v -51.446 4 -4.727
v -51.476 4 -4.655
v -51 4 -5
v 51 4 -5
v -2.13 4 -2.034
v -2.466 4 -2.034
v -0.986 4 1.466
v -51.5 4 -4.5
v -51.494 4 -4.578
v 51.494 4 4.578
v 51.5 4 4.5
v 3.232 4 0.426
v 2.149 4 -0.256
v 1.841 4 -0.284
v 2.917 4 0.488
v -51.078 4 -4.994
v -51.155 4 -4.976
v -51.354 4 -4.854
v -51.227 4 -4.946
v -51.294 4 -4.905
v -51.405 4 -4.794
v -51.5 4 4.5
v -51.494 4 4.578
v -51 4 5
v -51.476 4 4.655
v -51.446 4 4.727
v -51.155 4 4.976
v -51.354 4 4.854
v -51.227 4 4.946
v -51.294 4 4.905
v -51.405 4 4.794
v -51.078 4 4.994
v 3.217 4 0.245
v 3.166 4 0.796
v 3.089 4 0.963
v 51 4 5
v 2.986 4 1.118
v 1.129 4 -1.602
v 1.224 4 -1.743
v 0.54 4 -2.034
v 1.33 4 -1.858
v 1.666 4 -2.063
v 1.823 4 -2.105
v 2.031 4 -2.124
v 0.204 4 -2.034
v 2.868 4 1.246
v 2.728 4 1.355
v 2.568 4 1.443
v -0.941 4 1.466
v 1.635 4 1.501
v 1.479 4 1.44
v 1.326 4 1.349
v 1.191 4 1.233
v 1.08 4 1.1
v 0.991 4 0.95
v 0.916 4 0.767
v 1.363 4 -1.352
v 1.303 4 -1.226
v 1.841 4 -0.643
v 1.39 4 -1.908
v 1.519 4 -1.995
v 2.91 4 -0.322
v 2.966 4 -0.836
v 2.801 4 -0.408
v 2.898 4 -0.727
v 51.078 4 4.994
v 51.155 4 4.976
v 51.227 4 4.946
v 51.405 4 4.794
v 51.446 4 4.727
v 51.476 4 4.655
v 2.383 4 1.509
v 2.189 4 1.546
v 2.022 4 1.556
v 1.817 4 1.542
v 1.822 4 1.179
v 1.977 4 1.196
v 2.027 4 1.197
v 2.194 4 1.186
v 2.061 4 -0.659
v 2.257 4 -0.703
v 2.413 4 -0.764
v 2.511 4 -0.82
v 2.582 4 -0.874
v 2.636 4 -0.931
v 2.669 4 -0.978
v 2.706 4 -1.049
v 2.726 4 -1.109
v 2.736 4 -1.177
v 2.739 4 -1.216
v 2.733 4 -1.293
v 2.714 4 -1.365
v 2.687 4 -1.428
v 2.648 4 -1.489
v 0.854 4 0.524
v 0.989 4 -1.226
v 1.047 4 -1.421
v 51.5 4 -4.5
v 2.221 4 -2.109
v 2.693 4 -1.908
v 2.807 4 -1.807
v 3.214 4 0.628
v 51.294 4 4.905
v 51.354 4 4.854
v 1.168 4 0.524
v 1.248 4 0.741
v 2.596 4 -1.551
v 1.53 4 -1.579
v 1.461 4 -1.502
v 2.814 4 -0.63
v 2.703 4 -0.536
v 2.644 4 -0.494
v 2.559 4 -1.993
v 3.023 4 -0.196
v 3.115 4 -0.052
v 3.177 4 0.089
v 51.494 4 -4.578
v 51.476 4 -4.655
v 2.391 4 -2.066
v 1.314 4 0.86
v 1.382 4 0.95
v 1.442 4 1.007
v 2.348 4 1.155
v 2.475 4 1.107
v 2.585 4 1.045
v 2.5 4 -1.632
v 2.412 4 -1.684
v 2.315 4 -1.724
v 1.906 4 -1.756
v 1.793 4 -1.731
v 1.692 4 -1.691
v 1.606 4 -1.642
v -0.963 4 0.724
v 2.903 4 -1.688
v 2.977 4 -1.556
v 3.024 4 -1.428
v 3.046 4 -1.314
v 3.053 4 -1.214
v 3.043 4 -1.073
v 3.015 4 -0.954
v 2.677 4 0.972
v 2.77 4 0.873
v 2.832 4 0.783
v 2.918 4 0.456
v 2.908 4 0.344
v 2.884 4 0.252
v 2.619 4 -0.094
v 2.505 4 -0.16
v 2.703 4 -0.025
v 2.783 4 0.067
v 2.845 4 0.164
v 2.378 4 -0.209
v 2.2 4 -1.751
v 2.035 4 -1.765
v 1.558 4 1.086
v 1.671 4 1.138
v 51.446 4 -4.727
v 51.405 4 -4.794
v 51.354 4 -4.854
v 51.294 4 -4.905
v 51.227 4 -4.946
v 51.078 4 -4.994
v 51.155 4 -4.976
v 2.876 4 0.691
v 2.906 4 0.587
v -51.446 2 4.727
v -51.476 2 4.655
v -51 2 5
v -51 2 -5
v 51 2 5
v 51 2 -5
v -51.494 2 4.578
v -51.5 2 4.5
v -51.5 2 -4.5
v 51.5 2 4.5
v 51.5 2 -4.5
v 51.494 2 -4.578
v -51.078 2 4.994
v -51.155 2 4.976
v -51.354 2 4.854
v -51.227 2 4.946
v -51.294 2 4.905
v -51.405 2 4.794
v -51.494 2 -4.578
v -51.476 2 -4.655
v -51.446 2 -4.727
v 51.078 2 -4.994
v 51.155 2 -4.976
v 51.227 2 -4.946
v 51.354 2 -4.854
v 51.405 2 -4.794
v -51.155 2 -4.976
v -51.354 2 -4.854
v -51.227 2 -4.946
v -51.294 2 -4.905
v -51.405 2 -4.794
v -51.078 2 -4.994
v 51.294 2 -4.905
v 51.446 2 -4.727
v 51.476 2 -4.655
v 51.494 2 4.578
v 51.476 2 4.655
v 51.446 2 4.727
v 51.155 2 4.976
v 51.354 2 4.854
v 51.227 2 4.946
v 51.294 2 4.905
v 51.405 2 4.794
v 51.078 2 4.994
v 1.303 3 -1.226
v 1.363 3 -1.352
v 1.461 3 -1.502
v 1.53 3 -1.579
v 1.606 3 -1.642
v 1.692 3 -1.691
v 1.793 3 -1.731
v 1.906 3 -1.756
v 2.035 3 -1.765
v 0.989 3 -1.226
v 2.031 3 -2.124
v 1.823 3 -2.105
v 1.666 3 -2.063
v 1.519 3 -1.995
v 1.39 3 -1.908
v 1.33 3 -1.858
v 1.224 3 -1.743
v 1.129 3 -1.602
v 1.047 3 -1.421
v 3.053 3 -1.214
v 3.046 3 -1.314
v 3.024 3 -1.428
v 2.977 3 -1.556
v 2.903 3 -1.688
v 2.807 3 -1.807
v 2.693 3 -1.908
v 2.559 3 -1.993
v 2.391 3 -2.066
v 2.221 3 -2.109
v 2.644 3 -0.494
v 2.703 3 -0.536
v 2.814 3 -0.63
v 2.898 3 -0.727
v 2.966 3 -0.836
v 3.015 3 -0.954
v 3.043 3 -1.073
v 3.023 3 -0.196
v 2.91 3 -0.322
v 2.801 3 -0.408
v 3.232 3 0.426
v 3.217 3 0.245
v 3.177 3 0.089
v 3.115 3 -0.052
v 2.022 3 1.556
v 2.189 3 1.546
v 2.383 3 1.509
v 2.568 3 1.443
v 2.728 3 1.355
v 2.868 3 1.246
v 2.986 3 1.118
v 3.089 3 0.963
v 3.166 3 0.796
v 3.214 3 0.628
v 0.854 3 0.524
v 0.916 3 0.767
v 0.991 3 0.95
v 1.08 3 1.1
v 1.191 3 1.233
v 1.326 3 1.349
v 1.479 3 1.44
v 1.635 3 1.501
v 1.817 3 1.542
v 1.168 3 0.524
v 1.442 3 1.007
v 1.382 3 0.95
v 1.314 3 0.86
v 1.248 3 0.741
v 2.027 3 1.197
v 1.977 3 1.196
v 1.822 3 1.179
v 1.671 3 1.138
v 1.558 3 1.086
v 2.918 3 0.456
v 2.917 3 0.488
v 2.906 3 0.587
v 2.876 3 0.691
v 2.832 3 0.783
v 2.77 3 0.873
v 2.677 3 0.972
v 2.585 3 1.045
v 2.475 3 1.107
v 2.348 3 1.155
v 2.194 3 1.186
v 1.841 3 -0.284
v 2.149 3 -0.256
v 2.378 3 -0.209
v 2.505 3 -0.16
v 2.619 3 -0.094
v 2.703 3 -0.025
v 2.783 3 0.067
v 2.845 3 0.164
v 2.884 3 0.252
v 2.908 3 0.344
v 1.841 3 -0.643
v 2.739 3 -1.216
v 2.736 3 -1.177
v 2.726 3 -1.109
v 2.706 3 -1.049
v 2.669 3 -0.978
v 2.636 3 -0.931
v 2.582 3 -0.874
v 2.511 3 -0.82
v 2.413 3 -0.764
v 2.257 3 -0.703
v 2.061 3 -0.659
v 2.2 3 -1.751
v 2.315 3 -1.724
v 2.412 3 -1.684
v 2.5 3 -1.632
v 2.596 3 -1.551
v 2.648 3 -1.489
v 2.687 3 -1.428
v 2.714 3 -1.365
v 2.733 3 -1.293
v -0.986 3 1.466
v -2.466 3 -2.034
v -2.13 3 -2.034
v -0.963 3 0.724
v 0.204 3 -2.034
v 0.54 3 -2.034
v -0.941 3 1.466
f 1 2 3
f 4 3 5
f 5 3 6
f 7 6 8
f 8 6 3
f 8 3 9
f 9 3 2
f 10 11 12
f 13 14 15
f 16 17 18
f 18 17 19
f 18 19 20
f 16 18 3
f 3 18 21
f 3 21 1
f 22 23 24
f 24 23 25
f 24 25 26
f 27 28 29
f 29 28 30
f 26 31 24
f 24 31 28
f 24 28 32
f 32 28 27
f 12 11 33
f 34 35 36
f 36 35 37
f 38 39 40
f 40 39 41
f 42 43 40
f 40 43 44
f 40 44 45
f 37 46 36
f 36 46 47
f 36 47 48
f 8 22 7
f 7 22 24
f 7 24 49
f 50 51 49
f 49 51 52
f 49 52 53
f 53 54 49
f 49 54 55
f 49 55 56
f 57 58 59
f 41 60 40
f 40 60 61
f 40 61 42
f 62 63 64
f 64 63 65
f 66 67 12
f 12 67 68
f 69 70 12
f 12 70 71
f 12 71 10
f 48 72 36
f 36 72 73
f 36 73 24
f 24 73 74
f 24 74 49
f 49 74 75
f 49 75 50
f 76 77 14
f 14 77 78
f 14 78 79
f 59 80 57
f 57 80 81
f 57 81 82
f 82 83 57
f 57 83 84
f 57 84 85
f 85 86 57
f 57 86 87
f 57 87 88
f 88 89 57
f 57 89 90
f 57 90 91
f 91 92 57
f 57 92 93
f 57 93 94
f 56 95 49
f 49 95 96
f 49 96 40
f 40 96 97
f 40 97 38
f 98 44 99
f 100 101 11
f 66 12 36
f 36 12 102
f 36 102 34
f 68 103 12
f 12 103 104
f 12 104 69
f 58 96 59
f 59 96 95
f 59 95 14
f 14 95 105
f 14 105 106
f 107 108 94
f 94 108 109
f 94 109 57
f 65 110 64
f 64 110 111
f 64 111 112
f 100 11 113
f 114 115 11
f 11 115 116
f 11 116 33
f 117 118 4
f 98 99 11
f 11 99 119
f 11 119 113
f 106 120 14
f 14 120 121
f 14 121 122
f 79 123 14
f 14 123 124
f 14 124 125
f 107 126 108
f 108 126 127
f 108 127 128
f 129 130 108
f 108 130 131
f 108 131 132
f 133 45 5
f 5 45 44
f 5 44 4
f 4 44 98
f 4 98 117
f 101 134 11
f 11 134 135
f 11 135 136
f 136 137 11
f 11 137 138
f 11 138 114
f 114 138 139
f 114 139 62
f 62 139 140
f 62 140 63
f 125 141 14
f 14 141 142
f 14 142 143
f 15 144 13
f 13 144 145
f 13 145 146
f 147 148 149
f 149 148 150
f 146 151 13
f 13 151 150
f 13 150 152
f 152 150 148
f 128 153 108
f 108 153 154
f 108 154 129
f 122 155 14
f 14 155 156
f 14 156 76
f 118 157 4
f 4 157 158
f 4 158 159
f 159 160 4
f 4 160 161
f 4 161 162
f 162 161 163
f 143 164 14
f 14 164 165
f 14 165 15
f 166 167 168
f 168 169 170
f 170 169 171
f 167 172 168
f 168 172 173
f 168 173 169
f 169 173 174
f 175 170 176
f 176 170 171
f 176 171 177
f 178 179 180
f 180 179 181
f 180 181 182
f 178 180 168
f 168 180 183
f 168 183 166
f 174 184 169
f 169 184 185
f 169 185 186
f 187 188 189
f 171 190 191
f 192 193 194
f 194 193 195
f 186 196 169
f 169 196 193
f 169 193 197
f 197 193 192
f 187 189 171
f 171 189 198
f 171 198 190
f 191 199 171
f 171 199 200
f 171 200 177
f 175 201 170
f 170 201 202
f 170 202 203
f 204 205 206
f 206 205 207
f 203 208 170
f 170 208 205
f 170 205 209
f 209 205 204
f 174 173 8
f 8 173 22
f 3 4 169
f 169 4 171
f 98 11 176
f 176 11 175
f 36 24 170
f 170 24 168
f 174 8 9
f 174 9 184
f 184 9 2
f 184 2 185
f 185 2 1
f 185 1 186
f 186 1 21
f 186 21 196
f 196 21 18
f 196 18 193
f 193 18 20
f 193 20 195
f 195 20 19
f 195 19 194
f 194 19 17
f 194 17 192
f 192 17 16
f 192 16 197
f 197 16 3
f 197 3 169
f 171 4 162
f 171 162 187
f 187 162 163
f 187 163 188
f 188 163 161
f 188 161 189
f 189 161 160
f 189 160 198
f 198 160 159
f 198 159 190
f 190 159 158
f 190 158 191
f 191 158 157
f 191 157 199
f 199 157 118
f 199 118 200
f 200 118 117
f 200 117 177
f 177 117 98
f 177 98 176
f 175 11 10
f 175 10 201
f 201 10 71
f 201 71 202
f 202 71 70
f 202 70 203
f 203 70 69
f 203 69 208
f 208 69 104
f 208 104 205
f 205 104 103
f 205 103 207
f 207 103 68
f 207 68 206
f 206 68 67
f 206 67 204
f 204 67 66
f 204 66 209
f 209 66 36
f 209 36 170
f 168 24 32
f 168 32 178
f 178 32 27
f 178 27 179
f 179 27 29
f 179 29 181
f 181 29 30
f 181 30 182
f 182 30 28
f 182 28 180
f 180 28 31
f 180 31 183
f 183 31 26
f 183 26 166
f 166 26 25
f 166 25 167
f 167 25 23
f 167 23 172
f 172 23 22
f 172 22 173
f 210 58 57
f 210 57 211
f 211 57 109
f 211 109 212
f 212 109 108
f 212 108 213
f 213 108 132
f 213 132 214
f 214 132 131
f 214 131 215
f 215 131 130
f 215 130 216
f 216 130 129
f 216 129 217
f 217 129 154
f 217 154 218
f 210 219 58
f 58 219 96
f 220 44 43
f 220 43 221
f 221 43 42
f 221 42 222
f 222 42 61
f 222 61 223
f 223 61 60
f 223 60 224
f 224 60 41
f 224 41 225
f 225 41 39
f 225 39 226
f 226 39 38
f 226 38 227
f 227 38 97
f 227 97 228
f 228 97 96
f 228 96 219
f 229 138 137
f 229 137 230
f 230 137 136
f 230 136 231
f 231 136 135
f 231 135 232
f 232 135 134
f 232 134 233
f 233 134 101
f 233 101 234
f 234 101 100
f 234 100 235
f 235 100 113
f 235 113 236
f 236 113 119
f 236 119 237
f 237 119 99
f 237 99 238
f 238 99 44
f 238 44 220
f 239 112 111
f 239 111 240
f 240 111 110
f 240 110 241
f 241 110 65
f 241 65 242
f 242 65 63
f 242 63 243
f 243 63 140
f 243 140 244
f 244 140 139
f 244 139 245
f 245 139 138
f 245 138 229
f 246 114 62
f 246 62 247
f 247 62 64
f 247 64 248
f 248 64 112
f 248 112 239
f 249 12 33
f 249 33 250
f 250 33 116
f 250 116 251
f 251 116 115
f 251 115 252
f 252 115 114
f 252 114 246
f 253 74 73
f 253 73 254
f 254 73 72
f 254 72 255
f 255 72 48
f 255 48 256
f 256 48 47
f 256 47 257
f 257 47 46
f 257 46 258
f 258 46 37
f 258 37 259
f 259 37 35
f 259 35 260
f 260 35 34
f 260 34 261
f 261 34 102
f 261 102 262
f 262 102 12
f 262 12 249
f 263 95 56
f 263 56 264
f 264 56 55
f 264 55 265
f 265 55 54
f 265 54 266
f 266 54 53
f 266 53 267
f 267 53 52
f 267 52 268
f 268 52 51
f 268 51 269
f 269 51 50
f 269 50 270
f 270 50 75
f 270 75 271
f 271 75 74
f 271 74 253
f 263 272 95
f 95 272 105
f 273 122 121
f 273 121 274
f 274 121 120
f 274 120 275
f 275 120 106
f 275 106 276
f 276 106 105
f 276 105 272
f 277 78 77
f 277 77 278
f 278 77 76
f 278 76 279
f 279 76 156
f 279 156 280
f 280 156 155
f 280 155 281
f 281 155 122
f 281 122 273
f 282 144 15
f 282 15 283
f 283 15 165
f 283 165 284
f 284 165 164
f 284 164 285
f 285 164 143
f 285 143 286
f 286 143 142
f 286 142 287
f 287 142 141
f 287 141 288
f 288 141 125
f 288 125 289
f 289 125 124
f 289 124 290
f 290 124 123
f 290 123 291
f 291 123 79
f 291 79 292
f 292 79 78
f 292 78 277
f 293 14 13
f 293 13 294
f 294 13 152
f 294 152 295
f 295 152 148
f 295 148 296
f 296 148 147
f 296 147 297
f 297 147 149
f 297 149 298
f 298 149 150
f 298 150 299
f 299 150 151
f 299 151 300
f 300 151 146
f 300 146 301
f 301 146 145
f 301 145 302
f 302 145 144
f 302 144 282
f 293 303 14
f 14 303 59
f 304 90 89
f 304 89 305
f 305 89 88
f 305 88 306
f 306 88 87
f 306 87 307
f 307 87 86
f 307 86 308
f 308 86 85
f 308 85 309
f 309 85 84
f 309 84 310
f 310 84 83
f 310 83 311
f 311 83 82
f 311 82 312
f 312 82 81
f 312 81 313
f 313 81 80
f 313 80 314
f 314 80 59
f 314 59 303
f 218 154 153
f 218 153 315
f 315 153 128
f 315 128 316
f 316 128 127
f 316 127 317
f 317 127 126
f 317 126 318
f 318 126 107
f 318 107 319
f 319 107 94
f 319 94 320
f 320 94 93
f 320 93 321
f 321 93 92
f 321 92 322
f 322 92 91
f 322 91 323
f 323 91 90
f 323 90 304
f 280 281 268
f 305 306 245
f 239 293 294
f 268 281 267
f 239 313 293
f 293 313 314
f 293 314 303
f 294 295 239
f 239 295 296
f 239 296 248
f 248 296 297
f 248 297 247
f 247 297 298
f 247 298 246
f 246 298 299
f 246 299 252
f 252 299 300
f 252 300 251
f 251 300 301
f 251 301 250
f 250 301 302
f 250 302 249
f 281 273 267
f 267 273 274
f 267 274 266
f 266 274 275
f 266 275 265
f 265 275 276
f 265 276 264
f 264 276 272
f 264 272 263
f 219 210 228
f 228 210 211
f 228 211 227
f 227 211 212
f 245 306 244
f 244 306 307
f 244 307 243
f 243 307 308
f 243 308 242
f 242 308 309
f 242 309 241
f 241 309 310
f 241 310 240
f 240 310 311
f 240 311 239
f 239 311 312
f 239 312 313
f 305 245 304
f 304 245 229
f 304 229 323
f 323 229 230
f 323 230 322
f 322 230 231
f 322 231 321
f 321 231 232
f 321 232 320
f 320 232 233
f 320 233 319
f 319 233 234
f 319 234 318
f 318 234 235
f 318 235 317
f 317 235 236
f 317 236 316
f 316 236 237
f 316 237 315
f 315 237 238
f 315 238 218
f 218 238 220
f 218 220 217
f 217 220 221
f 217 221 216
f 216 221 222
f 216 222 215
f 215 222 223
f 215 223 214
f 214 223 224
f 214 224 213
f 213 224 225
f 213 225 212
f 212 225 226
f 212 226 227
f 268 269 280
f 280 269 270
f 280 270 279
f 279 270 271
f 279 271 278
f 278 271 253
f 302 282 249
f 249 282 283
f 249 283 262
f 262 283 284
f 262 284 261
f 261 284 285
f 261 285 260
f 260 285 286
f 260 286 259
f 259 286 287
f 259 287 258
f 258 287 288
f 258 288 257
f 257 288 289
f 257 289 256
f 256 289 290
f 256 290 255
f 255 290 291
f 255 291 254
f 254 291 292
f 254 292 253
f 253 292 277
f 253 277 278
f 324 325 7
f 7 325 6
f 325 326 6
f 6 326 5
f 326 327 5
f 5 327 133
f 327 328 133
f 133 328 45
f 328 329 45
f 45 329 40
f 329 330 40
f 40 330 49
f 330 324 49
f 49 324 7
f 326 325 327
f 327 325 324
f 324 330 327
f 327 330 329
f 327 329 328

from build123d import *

# Parameters (mm, degrees)
SKETCH1_W           = 99
SKETCH1_H           = 6
BOSS_EXTRUDE1_DEPTH = 2
SKETCH2_W           = 101
SKETCH2_H           = 8
BOSS_EXTRUDE3_DEPTH = 2
DRAFT1_ANGLE        = 10
SKETCH3_W           = 103
SKETCH3_H           = 10
BOSS_EXTRUDE4_DEPTH = 2
FILLET1_R           = 0.5
CUT_EXTRUDE1_DEPTH  = 1
CUT_EXTRUDE2_START  = 10
CUT_EXTRUDE2_DEPTH  = 10


with BuildPart() as part:
    # Sketch1 → Boss-Extrude1 (new body)
    with BuildSketch(Plane(origin=(0, 0, 0), x_dir=(1, 0, 0), z_dir=(0, 1, 0))):
        Rectangle(SKETCH1_W, SKETCH1_H)
    extrude(amount=BOSS_EXTRUDE1_DEPTH)

    # Draft1
    draft1_faces = [part.faces().sort_by_distance(p)[0] for p in [
        (49.5, 1, 0),
        (0, 1, 3),
        (-49.5, 1, 0),
        (0, 1, -3),
    ]]
    draft(draft1_faces, Plane(origin=(0, 0, 0), x_dir=(0, 0, -1), z_dir=(0, -1, 0)), DRAFT1_ANGLE)



with BuildPart() as body_2:
    # Sketch2 → Boss-Extrude3 (new body)
    with BuildSketch(Plane(origin=(0, 2, 0), x_dir=(1, 0, 0), z_dir=(0, 1, 0))):
        Rectangle(SKETCH2_W, SKETCH2_H)
    extrude(amount=BOSS_EXTRUDE3_DEPTH)


with BuildPart() as part_1:
    add(part.part)

    add(body_2.part)  # Boss-Extrude4 merges body 2
    # Sketch3 → Boss-Extrude4 (add)
    with BuildSketch(Plane(origin=(0, 4, 0), x_dir=(1, 0, 0), z_dir=(0, 1, 0))):
        Rectangle(SKETCH3_W, SKETCH3_H)
    extrude(amount=-BOSS_EXTRUDE4_DEPTH)

    # Fillet1
    fillet1_edges = [part_1.edges().sort_by_distance(p)[0] for p in [
        (-51.5, 3, 5),
        (-51.5, 3, -5),
        (51.5, 3, -5),
        (51.5, 3, 5),
    ]]
    fillet(fillet1_edges, radius=FILLET1_R)

    # Sketch4 → Cut-Extrude1 (cut)
    with BuildSketch(Plane(origin=(0, 4, 0), x_dir=(1, 0, 0), z_dir=(0, 1, 0))):
        Polygon((-2.466339169, 2.034069186), (-2.129800707, 2.034069186), (-0.96313404, -0.724143955), (0.203532626, 2.034069186), (0.540071088, 2.034069186), (-0.940698143, -1.465930814), (-0.985569938, -1.465930814), align=None)
        with BuildLine():
            Line((1.302891601, 1.226376878), (0.988789037, 1.226376878))
            add(Edge.make_bspline(
                [(0.988789037, 1.226376878), (0.997298587, 1.261609362), (1.013934063, 1.330485986), (1.048631636, 1.428893247), (1.086430891, 1.522016768), (1.131819996, 1.608112842), (1.18132875, 1.688911745), (1.238051472, 1.762580869), (1.299371194, 1.830993835), (1.367196144, 1.891707072), (1.438324805, 1.946684802), (1.513759425, 1.993559859), (1.591982319, 2.033884012), (1.673535452, 2.067104244), (1.758661623, 2.092129767), (1.846591247, 2.110286573), (1.937554747, 2.122077687), (1.999302337, 2.12322845), (2.030656024, 2.123812775)],
                knots=[0, 0, 0, 0, 1.162005537, 2.271625781, 3.343758855, 4.383309926, 5.390229558, 6.379919256, 7.361854164, 8.333198761, 9.295911338, 10.242430842, 11.177959212, 12.116337295, 13.062827104, 14.020064771, 14.994644689, 16, 16, 16, 16], degree=3))
            add(Edge.make_bspline(
                [(2.030656024, 2.123812775), (2.076338766, 2.122433545), (2.166707777, 2.11970517), (2.299470824, 2.094790733), (2.427497643, 2.055365601), (2.549386891, 2.000891874), (2.662605323, 1.93370456), (2.76334151, 1.853739824), (2.850230021, 1.762540522), (2.923124398, 1.661807958), (2.980199397, 1.554152448), (3.022285771, 1.443352291), (3.047907452, 1.32967032), (3.051228009, 1.252913041), (3.052891601, 1.214457807)],
                knots=[0, 0, 0, 0, 1.083050992, 2.142477498, 3.193116406, 4.255571735, 5.30263384, 6.308962982, 7.297363603, 8.282367274, 9.249857812, 10.179914175, 11.08814088, 12, 12, 12, 12], degree=3))
            add(Edge.make_bspline(
                [(3.052891601, 1.214457807), (3.05172801, 1.177451013), (3.049451043, 1.105034458), (3.030117337, 0.999312961), (2.997581074, 0.899671361), (2.952511311, 0.805690199), (2.894169761, 0.717965359), (2.823497064, 0.636299468), (2.739994403, 0.56033031), (2.676715465, 0.516810837), (2.644137594, 0.494405724)],
                knots=[0, 0, 0, 0, 1.024540389, 2.004866551, 2.965041327, 3.920577974, 4.882998113, 5.874504559, 6.905732034, 8, 8, 8, 8], degree=3))
            add(Edge.make_bspline(
                [(2.644137594, 0.494405724), (2.681369349, 0.476427552), (2.755136223, 0.440807595), (2.855686753, 0.370951837), (2.946964628, 0.29029549), (2.997868347, 0.227352837), (3.023444485, 0.195727839)],
                knots=[0, 0, 0, 0, 1.015518401, 2.012035669, 3.001164323, 4, 4, 4, 4], degree=3))
            add(Edge.make_bspline(
                [(3.023444485, 0.195727839), (3.040285828, 0.172670088), (3.073692724, 0.126932171), (3.114928257, 0.053395745), (3.152337372, -0.020955744), (3.181487591, -0.09811515), (3.204061458, -0.177188164), (3.22019749, -0.25831056), (3.230221631, -0.341548582), (3.231657183, -0.397861062), (3.23237878, -0.426167193)],
                knots=[0, 0, 0, 0, 1.025084078, 2.033381695, 3.024893161, 4.013698104, 4.991890475, 5.976764909, 6.982997093, 8, 8, 8, 8], degree=3))
            add(Edge.make_bspline(
                [(3.23237878, -0.426167193), (3.230584267, -0.475176914), (3.227003685, -0.572965716), (3.19499961, -0.717440437), (3.14538637, -0.85866594), (3.074929434, -0.993740779), (2.989061925, -1.12012116), (2.886904601, -1.233197469), (2.769618192, -1.330396073), (2.638812543, -1.411606301), (2.497095415, -1.476524223), (2.345519823, -1.521581666), (2.186269769, -1.550927666), (2.077062471, -1.554074535), (2.02154144, -1.555674404)],
                knots=[0, 0, 0, 0, 0.955779014, 1.907060117, 2.875433937, 3.871313158, 4.872415639, 5.851225146, 6.836215519, 7.83643374, 8.849228613, 9.86973379, 10.916971861, 12, 12, 12, 12], degree=3))
            add(Edge.make_bspline(
                [(2.02154144, -1.555674404), (1.98412214, -1.554806191), (1.910493435, -1.553097837), (1.802249937, -1.541419236), (1.698928237, -1.52008923), (1.600388639, -1.491385925), (1.506543603, -1.454994183), (1.417679498, -1.409675485), (1.333249604, -1.356363983), (1.254050653, -1.294430395), (1.180092086, -1.225149055), (1.113339361, -1.147290045), (1.052679568, -1.062292641), (0.99973693, -0.969169585), (0.952099977, -0.869124328), (0.91291902, -0.76087583), (0.878433452, -0.645391808), (0.862399987, -0.564914067), (0.854173652, -0.523623122)],
                knots=[0, 0, 0, 0, 1.048658725, 2.063410685, 3.046034179, 4.001477787, 4.936774919, 5.862367409, 6.792675028, 7.730719943, 8.675894397, 9.627829632, 10.600096036, 11.597688215, 12.626045268, 13.701542398, 14.82072376, 16, 16, 16, 16], degree=3))
            Line((0.854173652, -0.523623122), (1.168276216, -0.523623122))
            add(Edge.make_bspline(
                [(1.168276216, -0.523623122), (1.176459507, -0.550572135), (1.19237672, -0.602990307), (1.219471018, -0.678430613), (1.25033929, -0.747588666), (1.283453849, -0.810971788), (1.318232295, -0.86920419), (1.35714722, -0.920746059), (1.397316365, -0.967861262), (1.427595719, -0.994405874), (1.442414838, -1.007397161)],
                knots=[0, 0, 0, 0, 1.198163088, 2.33053128, 3.407730985, 4.417276592, 5.372219308, 6.28897303, 7.162600585, 8, 8, 8, 8], degree=3))
            add(Edge.make_bspline(
                [(1.442414838, -1.007397161), (1.462011414, -1.022505495), (1.501144077, -1.052675526), (1.564912308, -1.091177155), (1.631977194, -1.12453818), (1.703791869, -1.150021876), (1.778806639, -1.171599537), (1.858234004, -1.185720056), (1.941373221, -1.195408227), (1.998140985, -1.196263159), (2.027150415, -1.196700045)],
                knots=[0, 0, 0, 0, 0.946170439, 1.889420265, 2.845303464, 3.807233317, 4.801018734, 5.828864929, 6.890507805, 8, 8, 8, 8], degree=3))
            add(Edge.make_bspline(
                [(2.027150415, -1.196700045), (2.059903917, -1.19608414), (2.123950564, -1.19487979), (2.217405424, -1.183804084), (2.306312871, -1.16767367), (2.389685797, -1.142760687), (2.468616304, -1.111979836), (2.541997954, -1.07333143), (2.61079406, -1.027986709), (2.674123466, -0.97644755), (2.731068973, -0.920026055), (2.781208486, -0.861012984), (2.823833148, -0.799657154), (2.858216726, -0.735619034), (2.885367276, -0.669163805), (2.903850477, -0.600104975), (2.916701992, -0.529007709), (2.917748604, -0.48067874), (2.918276216, -0.45631543)],
                knots=[0, 0, 0, 0, 1.217147791, 2.380027433, 3.494444702, 4.572153297, 5.609568379, 6.639424714, 7.649109417, 8.668170816, 9.669597737, 10.625200337, 11.543417969, 12.441394052, 13.322311151, 14.205496177, 15.095365482, 16, 16, 16, 16], degree=3))
            add(Edge.make_bspline(
                [(2.918276216, -0.45631543), (2.916745915, -0.423704091), (2.913692926, -0.358643683), (2.890384347, -0.262926108), (2.852045482, -0.170702696), (2.798372971, -0.083546906), (2.733037242, -0.002771004), (2.656672336, 0.069300478), (2.568644107, 0.128770569), (2.487624238, 0.169859226), (2.415859082, 0.197896301), (2.354443697, 0.216571265), (2.285687094, 0.232384921), (2.210420745, 0.247097192), (2.128077529, 0.259618541), (2.038747091, 0.270060356), (1.942411329, 0.278415397), (1.875720163, 0.282146492), (1.841353139, 0.284069186)],
                knots=[0, 0, 0, 0, 1.07054697, 2.135767047, 3.216561865, 4.33974944, 5.486079747, 6.621378074, 7.775625952, 8.963672916, 9.598146892, 10.304877434, 11.070270905, 11.915000392, 12.823868403, 13.805723172, 14.86925407, 16, 16, 16, 16], degree=3))
            Line((1.841353139, 0.284069186), (1.841353139, 0.643043545))
            add(Edge.make_bspline(
                [(1.841353139, 0.643043545), (1.884654305, 0.643778348), (1.969470651, 0.645217648), (2.093364956, 0.662625659), (2.211838268, 0.686706287), (2.32226501, 0.723591479), (2.422913724, 0.766431776), (2.510233326, 0.816283985), (2.583000473, 0.871698735), (2.640861544, 0.933531344), (2.684390773, 0.999846391), (2.716217571, 1.068963049), (2.735017897, 1.14148711), (2.737527564, 1.190981778), (2.738789037, 1.215860051)],
                knots=[0, 0, 0, 0, 1.321986639, 2.589447074, 3.816329219, 5.01088745, 6.139805852, 7.153945165, 8.075214402, 8.924034688, 9.728124013, 10.488707548, 11.240355623, 12, 12, 12, 12], degree=3))
            add(Edge.make_bspline(
                [(2.738789037, 1.215860051), (2.738374626, 1.234137796), (2.737550175, 1.270500503), (2.727152897, 1.323625572), (2.711528856, 1.375126518), (2.690049127, 1.424784328), (2.661298928, 1.472254602), (2.626892941, 1.517942051), (2.585924841, 1.56158583), (2.538979394, 1.602266149), (2.488567589, 1.641035387), (2.433317814, 1.673949024), (2.374895939, 1.702094086), (2.313237284, 1.725303588), (2.248141754, 1.742762876), (2.179915196, 1.755298717), (2.108427513, 1.763136372), (2.059655781, 1.764264788), (2.034862755, 1.764838416)],
                knots=[0, 0, 0, 0, 0.884392785, 1.759457502, 2.611959086, 3.489218968, 4.37281399, 5.2945488, 6.255912374, 7.266815255, 8.301784654, 9.332968512, 10.37626691, 11.440494194, 12.520033166, 13.637162961, 14.798855837, 16, 16, 16, 16], degree=3))
            add(Edge.make_bspline(
                [(2.034862755, 1.764838416), (1.995011087, 1.763447054), (1.91717151, 1.760729401), (1.804956593, 1.736926387), (1.700637259, 1.698948304), (1.620898593, 1.653615284), (1.562016018, 1.60886485), (1.51993908, 1.569782464), (1.47861857, 1.52634964), (1.440772893, 1.475891265), (1.402498916, 1.421824475), (1.367654355, 1.361400793), (1.333794663, 1.296196399), (1.313392113, 1.250100765), (1.302891601, 1.226376878)],
                knots=[0, 0, 0, 0, 1.472543308, 2.876219568, 4.221790263, 5.565193594, 6.249813518, 6.953379497, 7.687249741, 8.463570142, 9.283606569, 10.136032583, 11.040678096, 12, 12, 12, 12], degree=3))
        make_face()
    extrude(amount=-CUT_EXTRUDE1_DEPTH, mode=Mode.SUBTRACT)

    # Sketch5 → Cut-Extrude2 (cut)
    with BuildSketch(Plane.XZ.offset(-2).offset(CUT_EXTRUDE2_START)):
        with BuildLine():
            Line((-51.5, 4.5), (-51.5, -4.5))
            ThreePointArc((-51.5, -4.5), (-51.353553391, -4.853553391), (-51, -5))
            Line((-51, -5), (51, -5))
            ThreePointArc((51, -5), (51.353553391, -4.853553391), (51.5, -4.5))
            Line((51.5, -4.5), (51.5, 4.5))
            ThreePointArc((51.5, 4.5), (51.353553391, 4.853553391), (51, 5))
            Line((51, 5), (-51, 5))
            ThreePointArc((-51, 5), (-51.353553391, 4.853553391), (-51.5, 4.5))
        make_face()
    extrude(amount=-CUT_EXTRUDE2_DEPTH, mode=Mode.SUBTRACT)


solid = part_1.part
